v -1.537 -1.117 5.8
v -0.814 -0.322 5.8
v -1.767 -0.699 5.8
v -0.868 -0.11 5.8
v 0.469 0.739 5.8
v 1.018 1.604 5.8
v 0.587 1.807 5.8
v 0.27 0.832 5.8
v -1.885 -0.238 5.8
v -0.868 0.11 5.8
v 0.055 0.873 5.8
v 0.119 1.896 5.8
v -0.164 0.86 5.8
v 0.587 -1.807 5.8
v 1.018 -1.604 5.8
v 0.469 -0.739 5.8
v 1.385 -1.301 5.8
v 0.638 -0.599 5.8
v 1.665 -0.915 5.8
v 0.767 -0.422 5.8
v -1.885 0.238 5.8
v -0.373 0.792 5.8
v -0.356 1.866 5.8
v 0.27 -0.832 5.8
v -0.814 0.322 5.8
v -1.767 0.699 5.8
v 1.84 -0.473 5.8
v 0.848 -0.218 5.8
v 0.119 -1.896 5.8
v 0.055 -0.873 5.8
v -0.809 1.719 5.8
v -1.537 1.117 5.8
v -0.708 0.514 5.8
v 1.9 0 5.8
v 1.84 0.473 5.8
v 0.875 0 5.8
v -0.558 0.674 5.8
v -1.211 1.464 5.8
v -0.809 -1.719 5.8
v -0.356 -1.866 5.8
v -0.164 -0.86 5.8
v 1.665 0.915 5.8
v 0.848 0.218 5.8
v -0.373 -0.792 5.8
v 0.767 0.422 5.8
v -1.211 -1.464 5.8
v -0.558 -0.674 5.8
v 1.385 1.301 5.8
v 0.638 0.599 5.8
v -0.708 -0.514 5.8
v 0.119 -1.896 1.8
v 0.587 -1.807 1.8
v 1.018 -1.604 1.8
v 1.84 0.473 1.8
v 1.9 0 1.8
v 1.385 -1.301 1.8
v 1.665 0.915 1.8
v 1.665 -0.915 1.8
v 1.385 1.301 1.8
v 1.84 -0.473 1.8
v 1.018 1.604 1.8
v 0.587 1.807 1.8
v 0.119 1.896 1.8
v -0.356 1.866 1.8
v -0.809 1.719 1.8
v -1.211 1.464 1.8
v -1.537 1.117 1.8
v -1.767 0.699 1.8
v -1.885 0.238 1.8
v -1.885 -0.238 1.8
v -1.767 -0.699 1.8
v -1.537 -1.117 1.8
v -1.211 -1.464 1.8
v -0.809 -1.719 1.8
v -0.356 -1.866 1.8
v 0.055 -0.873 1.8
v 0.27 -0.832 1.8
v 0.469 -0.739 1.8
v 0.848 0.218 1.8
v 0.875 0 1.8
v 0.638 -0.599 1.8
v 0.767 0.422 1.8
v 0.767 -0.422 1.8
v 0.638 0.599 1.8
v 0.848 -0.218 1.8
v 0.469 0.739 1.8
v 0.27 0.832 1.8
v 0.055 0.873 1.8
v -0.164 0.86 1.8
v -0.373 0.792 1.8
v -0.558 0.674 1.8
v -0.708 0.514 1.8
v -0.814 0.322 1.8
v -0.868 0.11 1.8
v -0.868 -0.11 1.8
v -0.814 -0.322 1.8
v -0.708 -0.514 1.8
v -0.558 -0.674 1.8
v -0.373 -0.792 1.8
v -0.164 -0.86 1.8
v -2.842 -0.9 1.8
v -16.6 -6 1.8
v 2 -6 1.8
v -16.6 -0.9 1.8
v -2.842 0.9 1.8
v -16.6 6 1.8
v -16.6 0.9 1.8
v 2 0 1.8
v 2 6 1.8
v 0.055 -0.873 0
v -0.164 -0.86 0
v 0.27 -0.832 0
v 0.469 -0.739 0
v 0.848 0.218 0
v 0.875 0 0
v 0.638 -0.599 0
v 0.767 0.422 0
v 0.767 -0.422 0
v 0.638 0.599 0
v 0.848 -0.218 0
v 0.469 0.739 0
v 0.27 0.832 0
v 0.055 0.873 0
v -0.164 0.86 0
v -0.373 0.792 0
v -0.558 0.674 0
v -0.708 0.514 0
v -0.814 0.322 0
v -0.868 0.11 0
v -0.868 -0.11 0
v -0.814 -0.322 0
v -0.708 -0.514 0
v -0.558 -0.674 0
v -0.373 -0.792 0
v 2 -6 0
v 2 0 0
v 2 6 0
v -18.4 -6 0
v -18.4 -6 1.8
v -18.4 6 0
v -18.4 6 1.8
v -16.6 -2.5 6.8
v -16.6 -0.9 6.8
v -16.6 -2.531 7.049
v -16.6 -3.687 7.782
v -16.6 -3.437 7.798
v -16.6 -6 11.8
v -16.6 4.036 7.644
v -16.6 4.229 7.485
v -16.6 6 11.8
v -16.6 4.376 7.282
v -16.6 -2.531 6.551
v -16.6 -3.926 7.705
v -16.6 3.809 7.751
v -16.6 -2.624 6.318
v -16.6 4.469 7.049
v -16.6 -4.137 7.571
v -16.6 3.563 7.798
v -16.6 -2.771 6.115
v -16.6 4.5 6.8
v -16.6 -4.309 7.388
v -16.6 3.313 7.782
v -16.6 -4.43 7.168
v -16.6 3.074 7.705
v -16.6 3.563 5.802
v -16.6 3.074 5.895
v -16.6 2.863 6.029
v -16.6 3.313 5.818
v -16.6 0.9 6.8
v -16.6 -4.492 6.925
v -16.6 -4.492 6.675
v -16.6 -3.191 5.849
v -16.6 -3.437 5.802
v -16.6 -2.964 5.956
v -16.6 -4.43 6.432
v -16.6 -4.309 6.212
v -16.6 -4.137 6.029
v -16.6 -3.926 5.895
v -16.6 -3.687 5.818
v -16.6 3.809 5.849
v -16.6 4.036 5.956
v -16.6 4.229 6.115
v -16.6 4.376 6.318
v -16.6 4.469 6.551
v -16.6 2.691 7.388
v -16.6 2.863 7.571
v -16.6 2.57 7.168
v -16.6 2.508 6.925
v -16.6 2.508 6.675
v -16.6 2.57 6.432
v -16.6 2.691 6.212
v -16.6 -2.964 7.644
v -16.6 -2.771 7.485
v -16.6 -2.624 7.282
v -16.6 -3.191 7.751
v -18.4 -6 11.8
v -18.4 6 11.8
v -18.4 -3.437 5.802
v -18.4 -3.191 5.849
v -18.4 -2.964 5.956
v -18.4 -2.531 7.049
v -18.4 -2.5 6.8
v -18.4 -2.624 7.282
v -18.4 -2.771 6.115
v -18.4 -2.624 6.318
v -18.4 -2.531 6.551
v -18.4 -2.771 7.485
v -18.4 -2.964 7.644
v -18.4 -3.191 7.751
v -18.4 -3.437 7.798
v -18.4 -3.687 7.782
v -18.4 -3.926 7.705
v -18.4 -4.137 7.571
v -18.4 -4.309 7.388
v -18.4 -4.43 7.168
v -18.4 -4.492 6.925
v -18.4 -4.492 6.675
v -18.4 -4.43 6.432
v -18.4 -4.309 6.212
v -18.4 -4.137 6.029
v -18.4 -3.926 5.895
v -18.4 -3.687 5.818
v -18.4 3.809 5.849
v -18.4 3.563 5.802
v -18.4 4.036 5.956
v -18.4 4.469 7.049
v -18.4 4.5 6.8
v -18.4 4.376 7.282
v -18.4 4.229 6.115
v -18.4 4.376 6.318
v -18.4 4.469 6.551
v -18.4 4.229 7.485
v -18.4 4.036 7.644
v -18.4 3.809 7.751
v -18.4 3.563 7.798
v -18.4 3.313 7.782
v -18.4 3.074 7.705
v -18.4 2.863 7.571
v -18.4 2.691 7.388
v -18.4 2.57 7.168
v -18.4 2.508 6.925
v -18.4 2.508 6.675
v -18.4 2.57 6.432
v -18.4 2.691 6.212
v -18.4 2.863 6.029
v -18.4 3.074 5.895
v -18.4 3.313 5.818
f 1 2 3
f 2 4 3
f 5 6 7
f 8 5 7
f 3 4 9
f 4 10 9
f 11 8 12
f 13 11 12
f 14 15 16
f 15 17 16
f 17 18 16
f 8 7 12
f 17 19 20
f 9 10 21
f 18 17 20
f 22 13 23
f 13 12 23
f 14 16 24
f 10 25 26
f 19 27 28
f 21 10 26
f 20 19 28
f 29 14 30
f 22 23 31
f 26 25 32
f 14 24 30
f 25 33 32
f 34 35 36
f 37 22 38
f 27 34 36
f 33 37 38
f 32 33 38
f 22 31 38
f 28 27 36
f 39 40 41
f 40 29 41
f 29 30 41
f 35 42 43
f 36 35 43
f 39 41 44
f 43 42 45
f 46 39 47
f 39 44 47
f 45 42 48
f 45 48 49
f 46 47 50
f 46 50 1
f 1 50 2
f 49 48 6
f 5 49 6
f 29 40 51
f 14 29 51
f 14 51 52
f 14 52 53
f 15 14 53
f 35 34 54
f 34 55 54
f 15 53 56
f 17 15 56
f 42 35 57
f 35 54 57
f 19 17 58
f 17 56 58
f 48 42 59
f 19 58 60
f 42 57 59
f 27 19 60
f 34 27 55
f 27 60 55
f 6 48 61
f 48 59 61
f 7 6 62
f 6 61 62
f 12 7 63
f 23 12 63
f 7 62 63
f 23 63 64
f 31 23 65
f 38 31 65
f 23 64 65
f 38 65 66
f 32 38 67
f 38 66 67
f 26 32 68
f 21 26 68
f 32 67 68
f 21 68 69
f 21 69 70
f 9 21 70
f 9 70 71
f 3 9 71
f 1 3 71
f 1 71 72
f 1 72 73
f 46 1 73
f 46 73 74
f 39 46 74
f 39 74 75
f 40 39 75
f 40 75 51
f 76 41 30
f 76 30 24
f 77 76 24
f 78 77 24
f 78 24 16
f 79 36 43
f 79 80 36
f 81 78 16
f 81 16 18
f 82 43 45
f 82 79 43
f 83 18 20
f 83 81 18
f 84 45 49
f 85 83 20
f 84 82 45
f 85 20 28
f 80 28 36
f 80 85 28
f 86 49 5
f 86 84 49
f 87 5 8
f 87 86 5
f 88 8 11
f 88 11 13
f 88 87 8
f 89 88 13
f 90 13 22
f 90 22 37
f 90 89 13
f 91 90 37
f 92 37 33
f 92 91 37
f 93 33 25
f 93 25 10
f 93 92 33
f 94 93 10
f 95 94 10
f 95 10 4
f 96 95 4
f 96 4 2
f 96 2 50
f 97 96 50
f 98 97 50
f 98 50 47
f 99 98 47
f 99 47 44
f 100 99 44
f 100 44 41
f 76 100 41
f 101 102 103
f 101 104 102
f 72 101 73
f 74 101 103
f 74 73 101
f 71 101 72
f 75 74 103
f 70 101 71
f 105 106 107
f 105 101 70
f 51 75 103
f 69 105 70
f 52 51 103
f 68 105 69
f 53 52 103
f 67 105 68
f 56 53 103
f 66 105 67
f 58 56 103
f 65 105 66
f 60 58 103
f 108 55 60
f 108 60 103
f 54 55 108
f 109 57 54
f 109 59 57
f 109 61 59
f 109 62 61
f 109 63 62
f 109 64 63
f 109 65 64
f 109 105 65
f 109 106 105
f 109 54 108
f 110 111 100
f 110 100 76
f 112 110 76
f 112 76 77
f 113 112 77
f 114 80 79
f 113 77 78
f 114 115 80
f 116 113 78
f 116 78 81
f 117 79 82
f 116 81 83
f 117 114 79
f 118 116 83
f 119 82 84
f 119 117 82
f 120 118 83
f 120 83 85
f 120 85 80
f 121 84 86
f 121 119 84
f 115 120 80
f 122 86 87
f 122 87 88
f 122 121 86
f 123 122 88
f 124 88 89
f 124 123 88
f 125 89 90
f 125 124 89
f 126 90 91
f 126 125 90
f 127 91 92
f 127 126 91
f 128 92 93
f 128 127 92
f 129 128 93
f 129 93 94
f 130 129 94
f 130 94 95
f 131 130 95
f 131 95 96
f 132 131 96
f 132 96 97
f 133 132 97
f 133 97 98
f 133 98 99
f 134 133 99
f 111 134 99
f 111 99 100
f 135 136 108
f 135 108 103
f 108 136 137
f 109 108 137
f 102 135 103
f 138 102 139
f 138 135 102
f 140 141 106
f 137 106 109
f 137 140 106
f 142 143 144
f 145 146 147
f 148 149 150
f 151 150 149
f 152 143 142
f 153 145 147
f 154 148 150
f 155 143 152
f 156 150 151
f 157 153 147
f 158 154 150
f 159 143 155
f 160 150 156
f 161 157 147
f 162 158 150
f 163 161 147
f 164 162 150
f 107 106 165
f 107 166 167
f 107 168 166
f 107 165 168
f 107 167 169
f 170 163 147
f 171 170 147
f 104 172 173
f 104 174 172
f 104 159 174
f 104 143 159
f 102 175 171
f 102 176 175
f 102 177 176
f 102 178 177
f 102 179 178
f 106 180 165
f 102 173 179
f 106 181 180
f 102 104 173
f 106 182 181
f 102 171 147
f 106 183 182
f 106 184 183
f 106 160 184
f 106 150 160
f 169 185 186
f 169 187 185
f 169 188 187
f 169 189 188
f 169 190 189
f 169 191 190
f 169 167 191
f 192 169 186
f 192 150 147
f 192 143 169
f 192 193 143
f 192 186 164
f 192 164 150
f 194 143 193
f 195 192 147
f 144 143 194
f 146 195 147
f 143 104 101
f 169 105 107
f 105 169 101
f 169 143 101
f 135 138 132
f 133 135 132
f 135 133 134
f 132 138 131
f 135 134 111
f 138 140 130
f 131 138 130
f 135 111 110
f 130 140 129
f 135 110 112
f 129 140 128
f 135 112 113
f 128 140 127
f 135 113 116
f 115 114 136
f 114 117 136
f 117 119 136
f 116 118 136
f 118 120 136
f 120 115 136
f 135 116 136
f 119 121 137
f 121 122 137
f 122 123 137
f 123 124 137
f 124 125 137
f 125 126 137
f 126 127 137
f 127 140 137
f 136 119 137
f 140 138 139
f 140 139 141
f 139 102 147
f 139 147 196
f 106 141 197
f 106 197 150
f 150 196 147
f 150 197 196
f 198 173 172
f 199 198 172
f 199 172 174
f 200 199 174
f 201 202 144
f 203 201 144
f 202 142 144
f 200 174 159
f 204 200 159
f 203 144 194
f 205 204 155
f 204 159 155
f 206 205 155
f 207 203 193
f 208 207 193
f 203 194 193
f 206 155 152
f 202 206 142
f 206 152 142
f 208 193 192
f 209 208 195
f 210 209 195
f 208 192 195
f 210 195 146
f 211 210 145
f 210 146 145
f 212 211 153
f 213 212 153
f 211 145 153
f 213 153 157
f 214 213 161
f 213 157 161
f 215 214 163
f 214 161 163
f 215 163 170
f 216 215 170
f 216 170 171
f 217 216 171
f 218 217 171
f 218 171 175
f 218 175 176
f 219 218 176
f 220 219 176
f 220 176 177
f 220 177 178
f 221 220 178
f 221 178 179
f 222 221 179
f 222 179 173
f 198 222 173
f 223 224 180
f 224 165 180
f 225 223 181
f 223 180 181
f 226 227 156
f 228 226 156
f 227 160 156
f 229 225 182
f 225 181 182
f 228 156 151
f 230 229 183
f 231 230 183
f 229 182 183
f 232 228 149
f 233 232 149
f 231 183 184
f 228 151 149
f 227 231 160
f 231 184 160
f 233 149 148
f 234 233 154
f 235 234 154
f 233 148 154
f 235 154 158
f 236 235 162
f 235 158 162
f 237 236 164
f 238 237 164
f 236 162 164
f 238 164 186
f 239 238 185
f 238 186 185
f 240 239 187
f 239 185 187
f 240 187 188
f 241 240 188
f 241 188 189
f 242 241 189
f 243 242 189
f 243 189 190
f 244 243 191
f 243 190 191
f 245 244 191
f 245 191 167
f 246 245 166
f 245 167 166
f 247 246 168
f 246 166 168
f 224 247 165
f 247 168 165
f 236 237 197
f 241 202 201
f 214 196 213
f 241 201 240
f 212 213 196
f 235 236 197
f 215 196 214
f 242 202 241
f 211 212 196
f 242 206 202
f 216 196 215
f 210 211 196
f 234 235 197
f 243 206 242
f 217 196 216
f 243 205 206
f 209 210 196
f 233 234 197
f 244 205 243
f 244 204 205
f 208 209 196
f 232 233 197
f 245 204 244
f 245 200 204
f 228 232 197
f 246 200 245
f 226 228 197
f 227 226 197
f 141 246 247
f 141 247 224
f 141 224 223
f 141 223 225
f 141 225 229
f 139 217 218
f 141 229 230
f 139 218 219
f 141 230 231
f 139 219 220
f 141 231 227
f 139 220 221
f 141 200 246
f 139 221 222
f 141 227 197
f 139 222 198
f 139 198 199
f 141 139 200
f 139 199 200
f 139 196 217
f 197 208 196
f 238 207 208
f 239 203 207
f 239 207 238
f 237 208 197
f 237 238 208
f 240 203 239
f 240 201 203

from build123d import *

# Parameters (mm, degrees)
SKETCH_R        = 0.875
PAD_DEPTH       = 1.8
SKETCH001_W     = 1.8
SKETCH001_H     = 12
PAD001_DEPTH    = 10
SKETCH002_R     = 1
POCKET_DEPTH    = 1.801
SKETCH003_W     = 13.757845
SKETCH003_H     = 1.8
PAD002_DEPTH    = 5
POCKET001_DEPTH = 1.8
SKETCH005_R     = 1.9
SKETCH005_R_2   = 0.875
PAD003_DEPTH    = 4


with BuildPart() as part:
    # Sketch → Pad (new body)
    with BuildSketch(Plane.XY):
        Polygon((-18.4, 6), (2, 6), (2, 0), (2, -6), (-18.4, -6), align=None)
        Circle(SKETCH_R, mode=Mode.SUBTRACT)
    extrude(amount=PAD_DEPTH)

    # Sketch001 → Pad001 (new body)
    with BuildSketch(Plane.XY.offset(1.8)):
        with Locations((-17.5, 0)):
            Rectangle(SKETCH001_W, SKETCH001_H)
    extrude(amount=PAD001_DEPTH)

    # Sketch002 → Pocket (cut, through all)
    with BuildSketch(Plane.YZ.offset(-16.6)):
        with Locations((-3.5, 6.8)):
            Circle(SKETCH002_R)
        with Locations((3.5, 6.8)):
            Circle(SKETCH002_R)
    extrude(amount=-POCKET_DEPTH, mode=Mode.SUBTRACT)

    # Sketch003 → Pad002 (new body)
    with BuildSketch(Plane.XY.offset(1.8)):
        with Locations((-9.7210775, 0)):
            Rectangle(SKETCH003_W, SKETCH003_H)
    extrude(amount=PAD002_DEPTH)

    # Sketch004 → Pocket001 (cut)
    with BuildSketch(Plane.XZ.offset(0.9)):
        Polygon((-16.6, 6.8), (-2.842155, 1.8), (-2.842155, 6.8), align=None)
    extrude(amount=-POCKET001_DEPTH, mode=Mode.SUBTRACT)

    # Sketch005 → Pad003 (new body)
    with BuildSketch(Plane.XY.offset(1.8)):
        Circle(SKETCH005_R)
        Circle(SKETCH005_R_2, mode=Mode.SUBTRACT)
    extrude(amount=PAD003_DEPTH)


solid = part.part
